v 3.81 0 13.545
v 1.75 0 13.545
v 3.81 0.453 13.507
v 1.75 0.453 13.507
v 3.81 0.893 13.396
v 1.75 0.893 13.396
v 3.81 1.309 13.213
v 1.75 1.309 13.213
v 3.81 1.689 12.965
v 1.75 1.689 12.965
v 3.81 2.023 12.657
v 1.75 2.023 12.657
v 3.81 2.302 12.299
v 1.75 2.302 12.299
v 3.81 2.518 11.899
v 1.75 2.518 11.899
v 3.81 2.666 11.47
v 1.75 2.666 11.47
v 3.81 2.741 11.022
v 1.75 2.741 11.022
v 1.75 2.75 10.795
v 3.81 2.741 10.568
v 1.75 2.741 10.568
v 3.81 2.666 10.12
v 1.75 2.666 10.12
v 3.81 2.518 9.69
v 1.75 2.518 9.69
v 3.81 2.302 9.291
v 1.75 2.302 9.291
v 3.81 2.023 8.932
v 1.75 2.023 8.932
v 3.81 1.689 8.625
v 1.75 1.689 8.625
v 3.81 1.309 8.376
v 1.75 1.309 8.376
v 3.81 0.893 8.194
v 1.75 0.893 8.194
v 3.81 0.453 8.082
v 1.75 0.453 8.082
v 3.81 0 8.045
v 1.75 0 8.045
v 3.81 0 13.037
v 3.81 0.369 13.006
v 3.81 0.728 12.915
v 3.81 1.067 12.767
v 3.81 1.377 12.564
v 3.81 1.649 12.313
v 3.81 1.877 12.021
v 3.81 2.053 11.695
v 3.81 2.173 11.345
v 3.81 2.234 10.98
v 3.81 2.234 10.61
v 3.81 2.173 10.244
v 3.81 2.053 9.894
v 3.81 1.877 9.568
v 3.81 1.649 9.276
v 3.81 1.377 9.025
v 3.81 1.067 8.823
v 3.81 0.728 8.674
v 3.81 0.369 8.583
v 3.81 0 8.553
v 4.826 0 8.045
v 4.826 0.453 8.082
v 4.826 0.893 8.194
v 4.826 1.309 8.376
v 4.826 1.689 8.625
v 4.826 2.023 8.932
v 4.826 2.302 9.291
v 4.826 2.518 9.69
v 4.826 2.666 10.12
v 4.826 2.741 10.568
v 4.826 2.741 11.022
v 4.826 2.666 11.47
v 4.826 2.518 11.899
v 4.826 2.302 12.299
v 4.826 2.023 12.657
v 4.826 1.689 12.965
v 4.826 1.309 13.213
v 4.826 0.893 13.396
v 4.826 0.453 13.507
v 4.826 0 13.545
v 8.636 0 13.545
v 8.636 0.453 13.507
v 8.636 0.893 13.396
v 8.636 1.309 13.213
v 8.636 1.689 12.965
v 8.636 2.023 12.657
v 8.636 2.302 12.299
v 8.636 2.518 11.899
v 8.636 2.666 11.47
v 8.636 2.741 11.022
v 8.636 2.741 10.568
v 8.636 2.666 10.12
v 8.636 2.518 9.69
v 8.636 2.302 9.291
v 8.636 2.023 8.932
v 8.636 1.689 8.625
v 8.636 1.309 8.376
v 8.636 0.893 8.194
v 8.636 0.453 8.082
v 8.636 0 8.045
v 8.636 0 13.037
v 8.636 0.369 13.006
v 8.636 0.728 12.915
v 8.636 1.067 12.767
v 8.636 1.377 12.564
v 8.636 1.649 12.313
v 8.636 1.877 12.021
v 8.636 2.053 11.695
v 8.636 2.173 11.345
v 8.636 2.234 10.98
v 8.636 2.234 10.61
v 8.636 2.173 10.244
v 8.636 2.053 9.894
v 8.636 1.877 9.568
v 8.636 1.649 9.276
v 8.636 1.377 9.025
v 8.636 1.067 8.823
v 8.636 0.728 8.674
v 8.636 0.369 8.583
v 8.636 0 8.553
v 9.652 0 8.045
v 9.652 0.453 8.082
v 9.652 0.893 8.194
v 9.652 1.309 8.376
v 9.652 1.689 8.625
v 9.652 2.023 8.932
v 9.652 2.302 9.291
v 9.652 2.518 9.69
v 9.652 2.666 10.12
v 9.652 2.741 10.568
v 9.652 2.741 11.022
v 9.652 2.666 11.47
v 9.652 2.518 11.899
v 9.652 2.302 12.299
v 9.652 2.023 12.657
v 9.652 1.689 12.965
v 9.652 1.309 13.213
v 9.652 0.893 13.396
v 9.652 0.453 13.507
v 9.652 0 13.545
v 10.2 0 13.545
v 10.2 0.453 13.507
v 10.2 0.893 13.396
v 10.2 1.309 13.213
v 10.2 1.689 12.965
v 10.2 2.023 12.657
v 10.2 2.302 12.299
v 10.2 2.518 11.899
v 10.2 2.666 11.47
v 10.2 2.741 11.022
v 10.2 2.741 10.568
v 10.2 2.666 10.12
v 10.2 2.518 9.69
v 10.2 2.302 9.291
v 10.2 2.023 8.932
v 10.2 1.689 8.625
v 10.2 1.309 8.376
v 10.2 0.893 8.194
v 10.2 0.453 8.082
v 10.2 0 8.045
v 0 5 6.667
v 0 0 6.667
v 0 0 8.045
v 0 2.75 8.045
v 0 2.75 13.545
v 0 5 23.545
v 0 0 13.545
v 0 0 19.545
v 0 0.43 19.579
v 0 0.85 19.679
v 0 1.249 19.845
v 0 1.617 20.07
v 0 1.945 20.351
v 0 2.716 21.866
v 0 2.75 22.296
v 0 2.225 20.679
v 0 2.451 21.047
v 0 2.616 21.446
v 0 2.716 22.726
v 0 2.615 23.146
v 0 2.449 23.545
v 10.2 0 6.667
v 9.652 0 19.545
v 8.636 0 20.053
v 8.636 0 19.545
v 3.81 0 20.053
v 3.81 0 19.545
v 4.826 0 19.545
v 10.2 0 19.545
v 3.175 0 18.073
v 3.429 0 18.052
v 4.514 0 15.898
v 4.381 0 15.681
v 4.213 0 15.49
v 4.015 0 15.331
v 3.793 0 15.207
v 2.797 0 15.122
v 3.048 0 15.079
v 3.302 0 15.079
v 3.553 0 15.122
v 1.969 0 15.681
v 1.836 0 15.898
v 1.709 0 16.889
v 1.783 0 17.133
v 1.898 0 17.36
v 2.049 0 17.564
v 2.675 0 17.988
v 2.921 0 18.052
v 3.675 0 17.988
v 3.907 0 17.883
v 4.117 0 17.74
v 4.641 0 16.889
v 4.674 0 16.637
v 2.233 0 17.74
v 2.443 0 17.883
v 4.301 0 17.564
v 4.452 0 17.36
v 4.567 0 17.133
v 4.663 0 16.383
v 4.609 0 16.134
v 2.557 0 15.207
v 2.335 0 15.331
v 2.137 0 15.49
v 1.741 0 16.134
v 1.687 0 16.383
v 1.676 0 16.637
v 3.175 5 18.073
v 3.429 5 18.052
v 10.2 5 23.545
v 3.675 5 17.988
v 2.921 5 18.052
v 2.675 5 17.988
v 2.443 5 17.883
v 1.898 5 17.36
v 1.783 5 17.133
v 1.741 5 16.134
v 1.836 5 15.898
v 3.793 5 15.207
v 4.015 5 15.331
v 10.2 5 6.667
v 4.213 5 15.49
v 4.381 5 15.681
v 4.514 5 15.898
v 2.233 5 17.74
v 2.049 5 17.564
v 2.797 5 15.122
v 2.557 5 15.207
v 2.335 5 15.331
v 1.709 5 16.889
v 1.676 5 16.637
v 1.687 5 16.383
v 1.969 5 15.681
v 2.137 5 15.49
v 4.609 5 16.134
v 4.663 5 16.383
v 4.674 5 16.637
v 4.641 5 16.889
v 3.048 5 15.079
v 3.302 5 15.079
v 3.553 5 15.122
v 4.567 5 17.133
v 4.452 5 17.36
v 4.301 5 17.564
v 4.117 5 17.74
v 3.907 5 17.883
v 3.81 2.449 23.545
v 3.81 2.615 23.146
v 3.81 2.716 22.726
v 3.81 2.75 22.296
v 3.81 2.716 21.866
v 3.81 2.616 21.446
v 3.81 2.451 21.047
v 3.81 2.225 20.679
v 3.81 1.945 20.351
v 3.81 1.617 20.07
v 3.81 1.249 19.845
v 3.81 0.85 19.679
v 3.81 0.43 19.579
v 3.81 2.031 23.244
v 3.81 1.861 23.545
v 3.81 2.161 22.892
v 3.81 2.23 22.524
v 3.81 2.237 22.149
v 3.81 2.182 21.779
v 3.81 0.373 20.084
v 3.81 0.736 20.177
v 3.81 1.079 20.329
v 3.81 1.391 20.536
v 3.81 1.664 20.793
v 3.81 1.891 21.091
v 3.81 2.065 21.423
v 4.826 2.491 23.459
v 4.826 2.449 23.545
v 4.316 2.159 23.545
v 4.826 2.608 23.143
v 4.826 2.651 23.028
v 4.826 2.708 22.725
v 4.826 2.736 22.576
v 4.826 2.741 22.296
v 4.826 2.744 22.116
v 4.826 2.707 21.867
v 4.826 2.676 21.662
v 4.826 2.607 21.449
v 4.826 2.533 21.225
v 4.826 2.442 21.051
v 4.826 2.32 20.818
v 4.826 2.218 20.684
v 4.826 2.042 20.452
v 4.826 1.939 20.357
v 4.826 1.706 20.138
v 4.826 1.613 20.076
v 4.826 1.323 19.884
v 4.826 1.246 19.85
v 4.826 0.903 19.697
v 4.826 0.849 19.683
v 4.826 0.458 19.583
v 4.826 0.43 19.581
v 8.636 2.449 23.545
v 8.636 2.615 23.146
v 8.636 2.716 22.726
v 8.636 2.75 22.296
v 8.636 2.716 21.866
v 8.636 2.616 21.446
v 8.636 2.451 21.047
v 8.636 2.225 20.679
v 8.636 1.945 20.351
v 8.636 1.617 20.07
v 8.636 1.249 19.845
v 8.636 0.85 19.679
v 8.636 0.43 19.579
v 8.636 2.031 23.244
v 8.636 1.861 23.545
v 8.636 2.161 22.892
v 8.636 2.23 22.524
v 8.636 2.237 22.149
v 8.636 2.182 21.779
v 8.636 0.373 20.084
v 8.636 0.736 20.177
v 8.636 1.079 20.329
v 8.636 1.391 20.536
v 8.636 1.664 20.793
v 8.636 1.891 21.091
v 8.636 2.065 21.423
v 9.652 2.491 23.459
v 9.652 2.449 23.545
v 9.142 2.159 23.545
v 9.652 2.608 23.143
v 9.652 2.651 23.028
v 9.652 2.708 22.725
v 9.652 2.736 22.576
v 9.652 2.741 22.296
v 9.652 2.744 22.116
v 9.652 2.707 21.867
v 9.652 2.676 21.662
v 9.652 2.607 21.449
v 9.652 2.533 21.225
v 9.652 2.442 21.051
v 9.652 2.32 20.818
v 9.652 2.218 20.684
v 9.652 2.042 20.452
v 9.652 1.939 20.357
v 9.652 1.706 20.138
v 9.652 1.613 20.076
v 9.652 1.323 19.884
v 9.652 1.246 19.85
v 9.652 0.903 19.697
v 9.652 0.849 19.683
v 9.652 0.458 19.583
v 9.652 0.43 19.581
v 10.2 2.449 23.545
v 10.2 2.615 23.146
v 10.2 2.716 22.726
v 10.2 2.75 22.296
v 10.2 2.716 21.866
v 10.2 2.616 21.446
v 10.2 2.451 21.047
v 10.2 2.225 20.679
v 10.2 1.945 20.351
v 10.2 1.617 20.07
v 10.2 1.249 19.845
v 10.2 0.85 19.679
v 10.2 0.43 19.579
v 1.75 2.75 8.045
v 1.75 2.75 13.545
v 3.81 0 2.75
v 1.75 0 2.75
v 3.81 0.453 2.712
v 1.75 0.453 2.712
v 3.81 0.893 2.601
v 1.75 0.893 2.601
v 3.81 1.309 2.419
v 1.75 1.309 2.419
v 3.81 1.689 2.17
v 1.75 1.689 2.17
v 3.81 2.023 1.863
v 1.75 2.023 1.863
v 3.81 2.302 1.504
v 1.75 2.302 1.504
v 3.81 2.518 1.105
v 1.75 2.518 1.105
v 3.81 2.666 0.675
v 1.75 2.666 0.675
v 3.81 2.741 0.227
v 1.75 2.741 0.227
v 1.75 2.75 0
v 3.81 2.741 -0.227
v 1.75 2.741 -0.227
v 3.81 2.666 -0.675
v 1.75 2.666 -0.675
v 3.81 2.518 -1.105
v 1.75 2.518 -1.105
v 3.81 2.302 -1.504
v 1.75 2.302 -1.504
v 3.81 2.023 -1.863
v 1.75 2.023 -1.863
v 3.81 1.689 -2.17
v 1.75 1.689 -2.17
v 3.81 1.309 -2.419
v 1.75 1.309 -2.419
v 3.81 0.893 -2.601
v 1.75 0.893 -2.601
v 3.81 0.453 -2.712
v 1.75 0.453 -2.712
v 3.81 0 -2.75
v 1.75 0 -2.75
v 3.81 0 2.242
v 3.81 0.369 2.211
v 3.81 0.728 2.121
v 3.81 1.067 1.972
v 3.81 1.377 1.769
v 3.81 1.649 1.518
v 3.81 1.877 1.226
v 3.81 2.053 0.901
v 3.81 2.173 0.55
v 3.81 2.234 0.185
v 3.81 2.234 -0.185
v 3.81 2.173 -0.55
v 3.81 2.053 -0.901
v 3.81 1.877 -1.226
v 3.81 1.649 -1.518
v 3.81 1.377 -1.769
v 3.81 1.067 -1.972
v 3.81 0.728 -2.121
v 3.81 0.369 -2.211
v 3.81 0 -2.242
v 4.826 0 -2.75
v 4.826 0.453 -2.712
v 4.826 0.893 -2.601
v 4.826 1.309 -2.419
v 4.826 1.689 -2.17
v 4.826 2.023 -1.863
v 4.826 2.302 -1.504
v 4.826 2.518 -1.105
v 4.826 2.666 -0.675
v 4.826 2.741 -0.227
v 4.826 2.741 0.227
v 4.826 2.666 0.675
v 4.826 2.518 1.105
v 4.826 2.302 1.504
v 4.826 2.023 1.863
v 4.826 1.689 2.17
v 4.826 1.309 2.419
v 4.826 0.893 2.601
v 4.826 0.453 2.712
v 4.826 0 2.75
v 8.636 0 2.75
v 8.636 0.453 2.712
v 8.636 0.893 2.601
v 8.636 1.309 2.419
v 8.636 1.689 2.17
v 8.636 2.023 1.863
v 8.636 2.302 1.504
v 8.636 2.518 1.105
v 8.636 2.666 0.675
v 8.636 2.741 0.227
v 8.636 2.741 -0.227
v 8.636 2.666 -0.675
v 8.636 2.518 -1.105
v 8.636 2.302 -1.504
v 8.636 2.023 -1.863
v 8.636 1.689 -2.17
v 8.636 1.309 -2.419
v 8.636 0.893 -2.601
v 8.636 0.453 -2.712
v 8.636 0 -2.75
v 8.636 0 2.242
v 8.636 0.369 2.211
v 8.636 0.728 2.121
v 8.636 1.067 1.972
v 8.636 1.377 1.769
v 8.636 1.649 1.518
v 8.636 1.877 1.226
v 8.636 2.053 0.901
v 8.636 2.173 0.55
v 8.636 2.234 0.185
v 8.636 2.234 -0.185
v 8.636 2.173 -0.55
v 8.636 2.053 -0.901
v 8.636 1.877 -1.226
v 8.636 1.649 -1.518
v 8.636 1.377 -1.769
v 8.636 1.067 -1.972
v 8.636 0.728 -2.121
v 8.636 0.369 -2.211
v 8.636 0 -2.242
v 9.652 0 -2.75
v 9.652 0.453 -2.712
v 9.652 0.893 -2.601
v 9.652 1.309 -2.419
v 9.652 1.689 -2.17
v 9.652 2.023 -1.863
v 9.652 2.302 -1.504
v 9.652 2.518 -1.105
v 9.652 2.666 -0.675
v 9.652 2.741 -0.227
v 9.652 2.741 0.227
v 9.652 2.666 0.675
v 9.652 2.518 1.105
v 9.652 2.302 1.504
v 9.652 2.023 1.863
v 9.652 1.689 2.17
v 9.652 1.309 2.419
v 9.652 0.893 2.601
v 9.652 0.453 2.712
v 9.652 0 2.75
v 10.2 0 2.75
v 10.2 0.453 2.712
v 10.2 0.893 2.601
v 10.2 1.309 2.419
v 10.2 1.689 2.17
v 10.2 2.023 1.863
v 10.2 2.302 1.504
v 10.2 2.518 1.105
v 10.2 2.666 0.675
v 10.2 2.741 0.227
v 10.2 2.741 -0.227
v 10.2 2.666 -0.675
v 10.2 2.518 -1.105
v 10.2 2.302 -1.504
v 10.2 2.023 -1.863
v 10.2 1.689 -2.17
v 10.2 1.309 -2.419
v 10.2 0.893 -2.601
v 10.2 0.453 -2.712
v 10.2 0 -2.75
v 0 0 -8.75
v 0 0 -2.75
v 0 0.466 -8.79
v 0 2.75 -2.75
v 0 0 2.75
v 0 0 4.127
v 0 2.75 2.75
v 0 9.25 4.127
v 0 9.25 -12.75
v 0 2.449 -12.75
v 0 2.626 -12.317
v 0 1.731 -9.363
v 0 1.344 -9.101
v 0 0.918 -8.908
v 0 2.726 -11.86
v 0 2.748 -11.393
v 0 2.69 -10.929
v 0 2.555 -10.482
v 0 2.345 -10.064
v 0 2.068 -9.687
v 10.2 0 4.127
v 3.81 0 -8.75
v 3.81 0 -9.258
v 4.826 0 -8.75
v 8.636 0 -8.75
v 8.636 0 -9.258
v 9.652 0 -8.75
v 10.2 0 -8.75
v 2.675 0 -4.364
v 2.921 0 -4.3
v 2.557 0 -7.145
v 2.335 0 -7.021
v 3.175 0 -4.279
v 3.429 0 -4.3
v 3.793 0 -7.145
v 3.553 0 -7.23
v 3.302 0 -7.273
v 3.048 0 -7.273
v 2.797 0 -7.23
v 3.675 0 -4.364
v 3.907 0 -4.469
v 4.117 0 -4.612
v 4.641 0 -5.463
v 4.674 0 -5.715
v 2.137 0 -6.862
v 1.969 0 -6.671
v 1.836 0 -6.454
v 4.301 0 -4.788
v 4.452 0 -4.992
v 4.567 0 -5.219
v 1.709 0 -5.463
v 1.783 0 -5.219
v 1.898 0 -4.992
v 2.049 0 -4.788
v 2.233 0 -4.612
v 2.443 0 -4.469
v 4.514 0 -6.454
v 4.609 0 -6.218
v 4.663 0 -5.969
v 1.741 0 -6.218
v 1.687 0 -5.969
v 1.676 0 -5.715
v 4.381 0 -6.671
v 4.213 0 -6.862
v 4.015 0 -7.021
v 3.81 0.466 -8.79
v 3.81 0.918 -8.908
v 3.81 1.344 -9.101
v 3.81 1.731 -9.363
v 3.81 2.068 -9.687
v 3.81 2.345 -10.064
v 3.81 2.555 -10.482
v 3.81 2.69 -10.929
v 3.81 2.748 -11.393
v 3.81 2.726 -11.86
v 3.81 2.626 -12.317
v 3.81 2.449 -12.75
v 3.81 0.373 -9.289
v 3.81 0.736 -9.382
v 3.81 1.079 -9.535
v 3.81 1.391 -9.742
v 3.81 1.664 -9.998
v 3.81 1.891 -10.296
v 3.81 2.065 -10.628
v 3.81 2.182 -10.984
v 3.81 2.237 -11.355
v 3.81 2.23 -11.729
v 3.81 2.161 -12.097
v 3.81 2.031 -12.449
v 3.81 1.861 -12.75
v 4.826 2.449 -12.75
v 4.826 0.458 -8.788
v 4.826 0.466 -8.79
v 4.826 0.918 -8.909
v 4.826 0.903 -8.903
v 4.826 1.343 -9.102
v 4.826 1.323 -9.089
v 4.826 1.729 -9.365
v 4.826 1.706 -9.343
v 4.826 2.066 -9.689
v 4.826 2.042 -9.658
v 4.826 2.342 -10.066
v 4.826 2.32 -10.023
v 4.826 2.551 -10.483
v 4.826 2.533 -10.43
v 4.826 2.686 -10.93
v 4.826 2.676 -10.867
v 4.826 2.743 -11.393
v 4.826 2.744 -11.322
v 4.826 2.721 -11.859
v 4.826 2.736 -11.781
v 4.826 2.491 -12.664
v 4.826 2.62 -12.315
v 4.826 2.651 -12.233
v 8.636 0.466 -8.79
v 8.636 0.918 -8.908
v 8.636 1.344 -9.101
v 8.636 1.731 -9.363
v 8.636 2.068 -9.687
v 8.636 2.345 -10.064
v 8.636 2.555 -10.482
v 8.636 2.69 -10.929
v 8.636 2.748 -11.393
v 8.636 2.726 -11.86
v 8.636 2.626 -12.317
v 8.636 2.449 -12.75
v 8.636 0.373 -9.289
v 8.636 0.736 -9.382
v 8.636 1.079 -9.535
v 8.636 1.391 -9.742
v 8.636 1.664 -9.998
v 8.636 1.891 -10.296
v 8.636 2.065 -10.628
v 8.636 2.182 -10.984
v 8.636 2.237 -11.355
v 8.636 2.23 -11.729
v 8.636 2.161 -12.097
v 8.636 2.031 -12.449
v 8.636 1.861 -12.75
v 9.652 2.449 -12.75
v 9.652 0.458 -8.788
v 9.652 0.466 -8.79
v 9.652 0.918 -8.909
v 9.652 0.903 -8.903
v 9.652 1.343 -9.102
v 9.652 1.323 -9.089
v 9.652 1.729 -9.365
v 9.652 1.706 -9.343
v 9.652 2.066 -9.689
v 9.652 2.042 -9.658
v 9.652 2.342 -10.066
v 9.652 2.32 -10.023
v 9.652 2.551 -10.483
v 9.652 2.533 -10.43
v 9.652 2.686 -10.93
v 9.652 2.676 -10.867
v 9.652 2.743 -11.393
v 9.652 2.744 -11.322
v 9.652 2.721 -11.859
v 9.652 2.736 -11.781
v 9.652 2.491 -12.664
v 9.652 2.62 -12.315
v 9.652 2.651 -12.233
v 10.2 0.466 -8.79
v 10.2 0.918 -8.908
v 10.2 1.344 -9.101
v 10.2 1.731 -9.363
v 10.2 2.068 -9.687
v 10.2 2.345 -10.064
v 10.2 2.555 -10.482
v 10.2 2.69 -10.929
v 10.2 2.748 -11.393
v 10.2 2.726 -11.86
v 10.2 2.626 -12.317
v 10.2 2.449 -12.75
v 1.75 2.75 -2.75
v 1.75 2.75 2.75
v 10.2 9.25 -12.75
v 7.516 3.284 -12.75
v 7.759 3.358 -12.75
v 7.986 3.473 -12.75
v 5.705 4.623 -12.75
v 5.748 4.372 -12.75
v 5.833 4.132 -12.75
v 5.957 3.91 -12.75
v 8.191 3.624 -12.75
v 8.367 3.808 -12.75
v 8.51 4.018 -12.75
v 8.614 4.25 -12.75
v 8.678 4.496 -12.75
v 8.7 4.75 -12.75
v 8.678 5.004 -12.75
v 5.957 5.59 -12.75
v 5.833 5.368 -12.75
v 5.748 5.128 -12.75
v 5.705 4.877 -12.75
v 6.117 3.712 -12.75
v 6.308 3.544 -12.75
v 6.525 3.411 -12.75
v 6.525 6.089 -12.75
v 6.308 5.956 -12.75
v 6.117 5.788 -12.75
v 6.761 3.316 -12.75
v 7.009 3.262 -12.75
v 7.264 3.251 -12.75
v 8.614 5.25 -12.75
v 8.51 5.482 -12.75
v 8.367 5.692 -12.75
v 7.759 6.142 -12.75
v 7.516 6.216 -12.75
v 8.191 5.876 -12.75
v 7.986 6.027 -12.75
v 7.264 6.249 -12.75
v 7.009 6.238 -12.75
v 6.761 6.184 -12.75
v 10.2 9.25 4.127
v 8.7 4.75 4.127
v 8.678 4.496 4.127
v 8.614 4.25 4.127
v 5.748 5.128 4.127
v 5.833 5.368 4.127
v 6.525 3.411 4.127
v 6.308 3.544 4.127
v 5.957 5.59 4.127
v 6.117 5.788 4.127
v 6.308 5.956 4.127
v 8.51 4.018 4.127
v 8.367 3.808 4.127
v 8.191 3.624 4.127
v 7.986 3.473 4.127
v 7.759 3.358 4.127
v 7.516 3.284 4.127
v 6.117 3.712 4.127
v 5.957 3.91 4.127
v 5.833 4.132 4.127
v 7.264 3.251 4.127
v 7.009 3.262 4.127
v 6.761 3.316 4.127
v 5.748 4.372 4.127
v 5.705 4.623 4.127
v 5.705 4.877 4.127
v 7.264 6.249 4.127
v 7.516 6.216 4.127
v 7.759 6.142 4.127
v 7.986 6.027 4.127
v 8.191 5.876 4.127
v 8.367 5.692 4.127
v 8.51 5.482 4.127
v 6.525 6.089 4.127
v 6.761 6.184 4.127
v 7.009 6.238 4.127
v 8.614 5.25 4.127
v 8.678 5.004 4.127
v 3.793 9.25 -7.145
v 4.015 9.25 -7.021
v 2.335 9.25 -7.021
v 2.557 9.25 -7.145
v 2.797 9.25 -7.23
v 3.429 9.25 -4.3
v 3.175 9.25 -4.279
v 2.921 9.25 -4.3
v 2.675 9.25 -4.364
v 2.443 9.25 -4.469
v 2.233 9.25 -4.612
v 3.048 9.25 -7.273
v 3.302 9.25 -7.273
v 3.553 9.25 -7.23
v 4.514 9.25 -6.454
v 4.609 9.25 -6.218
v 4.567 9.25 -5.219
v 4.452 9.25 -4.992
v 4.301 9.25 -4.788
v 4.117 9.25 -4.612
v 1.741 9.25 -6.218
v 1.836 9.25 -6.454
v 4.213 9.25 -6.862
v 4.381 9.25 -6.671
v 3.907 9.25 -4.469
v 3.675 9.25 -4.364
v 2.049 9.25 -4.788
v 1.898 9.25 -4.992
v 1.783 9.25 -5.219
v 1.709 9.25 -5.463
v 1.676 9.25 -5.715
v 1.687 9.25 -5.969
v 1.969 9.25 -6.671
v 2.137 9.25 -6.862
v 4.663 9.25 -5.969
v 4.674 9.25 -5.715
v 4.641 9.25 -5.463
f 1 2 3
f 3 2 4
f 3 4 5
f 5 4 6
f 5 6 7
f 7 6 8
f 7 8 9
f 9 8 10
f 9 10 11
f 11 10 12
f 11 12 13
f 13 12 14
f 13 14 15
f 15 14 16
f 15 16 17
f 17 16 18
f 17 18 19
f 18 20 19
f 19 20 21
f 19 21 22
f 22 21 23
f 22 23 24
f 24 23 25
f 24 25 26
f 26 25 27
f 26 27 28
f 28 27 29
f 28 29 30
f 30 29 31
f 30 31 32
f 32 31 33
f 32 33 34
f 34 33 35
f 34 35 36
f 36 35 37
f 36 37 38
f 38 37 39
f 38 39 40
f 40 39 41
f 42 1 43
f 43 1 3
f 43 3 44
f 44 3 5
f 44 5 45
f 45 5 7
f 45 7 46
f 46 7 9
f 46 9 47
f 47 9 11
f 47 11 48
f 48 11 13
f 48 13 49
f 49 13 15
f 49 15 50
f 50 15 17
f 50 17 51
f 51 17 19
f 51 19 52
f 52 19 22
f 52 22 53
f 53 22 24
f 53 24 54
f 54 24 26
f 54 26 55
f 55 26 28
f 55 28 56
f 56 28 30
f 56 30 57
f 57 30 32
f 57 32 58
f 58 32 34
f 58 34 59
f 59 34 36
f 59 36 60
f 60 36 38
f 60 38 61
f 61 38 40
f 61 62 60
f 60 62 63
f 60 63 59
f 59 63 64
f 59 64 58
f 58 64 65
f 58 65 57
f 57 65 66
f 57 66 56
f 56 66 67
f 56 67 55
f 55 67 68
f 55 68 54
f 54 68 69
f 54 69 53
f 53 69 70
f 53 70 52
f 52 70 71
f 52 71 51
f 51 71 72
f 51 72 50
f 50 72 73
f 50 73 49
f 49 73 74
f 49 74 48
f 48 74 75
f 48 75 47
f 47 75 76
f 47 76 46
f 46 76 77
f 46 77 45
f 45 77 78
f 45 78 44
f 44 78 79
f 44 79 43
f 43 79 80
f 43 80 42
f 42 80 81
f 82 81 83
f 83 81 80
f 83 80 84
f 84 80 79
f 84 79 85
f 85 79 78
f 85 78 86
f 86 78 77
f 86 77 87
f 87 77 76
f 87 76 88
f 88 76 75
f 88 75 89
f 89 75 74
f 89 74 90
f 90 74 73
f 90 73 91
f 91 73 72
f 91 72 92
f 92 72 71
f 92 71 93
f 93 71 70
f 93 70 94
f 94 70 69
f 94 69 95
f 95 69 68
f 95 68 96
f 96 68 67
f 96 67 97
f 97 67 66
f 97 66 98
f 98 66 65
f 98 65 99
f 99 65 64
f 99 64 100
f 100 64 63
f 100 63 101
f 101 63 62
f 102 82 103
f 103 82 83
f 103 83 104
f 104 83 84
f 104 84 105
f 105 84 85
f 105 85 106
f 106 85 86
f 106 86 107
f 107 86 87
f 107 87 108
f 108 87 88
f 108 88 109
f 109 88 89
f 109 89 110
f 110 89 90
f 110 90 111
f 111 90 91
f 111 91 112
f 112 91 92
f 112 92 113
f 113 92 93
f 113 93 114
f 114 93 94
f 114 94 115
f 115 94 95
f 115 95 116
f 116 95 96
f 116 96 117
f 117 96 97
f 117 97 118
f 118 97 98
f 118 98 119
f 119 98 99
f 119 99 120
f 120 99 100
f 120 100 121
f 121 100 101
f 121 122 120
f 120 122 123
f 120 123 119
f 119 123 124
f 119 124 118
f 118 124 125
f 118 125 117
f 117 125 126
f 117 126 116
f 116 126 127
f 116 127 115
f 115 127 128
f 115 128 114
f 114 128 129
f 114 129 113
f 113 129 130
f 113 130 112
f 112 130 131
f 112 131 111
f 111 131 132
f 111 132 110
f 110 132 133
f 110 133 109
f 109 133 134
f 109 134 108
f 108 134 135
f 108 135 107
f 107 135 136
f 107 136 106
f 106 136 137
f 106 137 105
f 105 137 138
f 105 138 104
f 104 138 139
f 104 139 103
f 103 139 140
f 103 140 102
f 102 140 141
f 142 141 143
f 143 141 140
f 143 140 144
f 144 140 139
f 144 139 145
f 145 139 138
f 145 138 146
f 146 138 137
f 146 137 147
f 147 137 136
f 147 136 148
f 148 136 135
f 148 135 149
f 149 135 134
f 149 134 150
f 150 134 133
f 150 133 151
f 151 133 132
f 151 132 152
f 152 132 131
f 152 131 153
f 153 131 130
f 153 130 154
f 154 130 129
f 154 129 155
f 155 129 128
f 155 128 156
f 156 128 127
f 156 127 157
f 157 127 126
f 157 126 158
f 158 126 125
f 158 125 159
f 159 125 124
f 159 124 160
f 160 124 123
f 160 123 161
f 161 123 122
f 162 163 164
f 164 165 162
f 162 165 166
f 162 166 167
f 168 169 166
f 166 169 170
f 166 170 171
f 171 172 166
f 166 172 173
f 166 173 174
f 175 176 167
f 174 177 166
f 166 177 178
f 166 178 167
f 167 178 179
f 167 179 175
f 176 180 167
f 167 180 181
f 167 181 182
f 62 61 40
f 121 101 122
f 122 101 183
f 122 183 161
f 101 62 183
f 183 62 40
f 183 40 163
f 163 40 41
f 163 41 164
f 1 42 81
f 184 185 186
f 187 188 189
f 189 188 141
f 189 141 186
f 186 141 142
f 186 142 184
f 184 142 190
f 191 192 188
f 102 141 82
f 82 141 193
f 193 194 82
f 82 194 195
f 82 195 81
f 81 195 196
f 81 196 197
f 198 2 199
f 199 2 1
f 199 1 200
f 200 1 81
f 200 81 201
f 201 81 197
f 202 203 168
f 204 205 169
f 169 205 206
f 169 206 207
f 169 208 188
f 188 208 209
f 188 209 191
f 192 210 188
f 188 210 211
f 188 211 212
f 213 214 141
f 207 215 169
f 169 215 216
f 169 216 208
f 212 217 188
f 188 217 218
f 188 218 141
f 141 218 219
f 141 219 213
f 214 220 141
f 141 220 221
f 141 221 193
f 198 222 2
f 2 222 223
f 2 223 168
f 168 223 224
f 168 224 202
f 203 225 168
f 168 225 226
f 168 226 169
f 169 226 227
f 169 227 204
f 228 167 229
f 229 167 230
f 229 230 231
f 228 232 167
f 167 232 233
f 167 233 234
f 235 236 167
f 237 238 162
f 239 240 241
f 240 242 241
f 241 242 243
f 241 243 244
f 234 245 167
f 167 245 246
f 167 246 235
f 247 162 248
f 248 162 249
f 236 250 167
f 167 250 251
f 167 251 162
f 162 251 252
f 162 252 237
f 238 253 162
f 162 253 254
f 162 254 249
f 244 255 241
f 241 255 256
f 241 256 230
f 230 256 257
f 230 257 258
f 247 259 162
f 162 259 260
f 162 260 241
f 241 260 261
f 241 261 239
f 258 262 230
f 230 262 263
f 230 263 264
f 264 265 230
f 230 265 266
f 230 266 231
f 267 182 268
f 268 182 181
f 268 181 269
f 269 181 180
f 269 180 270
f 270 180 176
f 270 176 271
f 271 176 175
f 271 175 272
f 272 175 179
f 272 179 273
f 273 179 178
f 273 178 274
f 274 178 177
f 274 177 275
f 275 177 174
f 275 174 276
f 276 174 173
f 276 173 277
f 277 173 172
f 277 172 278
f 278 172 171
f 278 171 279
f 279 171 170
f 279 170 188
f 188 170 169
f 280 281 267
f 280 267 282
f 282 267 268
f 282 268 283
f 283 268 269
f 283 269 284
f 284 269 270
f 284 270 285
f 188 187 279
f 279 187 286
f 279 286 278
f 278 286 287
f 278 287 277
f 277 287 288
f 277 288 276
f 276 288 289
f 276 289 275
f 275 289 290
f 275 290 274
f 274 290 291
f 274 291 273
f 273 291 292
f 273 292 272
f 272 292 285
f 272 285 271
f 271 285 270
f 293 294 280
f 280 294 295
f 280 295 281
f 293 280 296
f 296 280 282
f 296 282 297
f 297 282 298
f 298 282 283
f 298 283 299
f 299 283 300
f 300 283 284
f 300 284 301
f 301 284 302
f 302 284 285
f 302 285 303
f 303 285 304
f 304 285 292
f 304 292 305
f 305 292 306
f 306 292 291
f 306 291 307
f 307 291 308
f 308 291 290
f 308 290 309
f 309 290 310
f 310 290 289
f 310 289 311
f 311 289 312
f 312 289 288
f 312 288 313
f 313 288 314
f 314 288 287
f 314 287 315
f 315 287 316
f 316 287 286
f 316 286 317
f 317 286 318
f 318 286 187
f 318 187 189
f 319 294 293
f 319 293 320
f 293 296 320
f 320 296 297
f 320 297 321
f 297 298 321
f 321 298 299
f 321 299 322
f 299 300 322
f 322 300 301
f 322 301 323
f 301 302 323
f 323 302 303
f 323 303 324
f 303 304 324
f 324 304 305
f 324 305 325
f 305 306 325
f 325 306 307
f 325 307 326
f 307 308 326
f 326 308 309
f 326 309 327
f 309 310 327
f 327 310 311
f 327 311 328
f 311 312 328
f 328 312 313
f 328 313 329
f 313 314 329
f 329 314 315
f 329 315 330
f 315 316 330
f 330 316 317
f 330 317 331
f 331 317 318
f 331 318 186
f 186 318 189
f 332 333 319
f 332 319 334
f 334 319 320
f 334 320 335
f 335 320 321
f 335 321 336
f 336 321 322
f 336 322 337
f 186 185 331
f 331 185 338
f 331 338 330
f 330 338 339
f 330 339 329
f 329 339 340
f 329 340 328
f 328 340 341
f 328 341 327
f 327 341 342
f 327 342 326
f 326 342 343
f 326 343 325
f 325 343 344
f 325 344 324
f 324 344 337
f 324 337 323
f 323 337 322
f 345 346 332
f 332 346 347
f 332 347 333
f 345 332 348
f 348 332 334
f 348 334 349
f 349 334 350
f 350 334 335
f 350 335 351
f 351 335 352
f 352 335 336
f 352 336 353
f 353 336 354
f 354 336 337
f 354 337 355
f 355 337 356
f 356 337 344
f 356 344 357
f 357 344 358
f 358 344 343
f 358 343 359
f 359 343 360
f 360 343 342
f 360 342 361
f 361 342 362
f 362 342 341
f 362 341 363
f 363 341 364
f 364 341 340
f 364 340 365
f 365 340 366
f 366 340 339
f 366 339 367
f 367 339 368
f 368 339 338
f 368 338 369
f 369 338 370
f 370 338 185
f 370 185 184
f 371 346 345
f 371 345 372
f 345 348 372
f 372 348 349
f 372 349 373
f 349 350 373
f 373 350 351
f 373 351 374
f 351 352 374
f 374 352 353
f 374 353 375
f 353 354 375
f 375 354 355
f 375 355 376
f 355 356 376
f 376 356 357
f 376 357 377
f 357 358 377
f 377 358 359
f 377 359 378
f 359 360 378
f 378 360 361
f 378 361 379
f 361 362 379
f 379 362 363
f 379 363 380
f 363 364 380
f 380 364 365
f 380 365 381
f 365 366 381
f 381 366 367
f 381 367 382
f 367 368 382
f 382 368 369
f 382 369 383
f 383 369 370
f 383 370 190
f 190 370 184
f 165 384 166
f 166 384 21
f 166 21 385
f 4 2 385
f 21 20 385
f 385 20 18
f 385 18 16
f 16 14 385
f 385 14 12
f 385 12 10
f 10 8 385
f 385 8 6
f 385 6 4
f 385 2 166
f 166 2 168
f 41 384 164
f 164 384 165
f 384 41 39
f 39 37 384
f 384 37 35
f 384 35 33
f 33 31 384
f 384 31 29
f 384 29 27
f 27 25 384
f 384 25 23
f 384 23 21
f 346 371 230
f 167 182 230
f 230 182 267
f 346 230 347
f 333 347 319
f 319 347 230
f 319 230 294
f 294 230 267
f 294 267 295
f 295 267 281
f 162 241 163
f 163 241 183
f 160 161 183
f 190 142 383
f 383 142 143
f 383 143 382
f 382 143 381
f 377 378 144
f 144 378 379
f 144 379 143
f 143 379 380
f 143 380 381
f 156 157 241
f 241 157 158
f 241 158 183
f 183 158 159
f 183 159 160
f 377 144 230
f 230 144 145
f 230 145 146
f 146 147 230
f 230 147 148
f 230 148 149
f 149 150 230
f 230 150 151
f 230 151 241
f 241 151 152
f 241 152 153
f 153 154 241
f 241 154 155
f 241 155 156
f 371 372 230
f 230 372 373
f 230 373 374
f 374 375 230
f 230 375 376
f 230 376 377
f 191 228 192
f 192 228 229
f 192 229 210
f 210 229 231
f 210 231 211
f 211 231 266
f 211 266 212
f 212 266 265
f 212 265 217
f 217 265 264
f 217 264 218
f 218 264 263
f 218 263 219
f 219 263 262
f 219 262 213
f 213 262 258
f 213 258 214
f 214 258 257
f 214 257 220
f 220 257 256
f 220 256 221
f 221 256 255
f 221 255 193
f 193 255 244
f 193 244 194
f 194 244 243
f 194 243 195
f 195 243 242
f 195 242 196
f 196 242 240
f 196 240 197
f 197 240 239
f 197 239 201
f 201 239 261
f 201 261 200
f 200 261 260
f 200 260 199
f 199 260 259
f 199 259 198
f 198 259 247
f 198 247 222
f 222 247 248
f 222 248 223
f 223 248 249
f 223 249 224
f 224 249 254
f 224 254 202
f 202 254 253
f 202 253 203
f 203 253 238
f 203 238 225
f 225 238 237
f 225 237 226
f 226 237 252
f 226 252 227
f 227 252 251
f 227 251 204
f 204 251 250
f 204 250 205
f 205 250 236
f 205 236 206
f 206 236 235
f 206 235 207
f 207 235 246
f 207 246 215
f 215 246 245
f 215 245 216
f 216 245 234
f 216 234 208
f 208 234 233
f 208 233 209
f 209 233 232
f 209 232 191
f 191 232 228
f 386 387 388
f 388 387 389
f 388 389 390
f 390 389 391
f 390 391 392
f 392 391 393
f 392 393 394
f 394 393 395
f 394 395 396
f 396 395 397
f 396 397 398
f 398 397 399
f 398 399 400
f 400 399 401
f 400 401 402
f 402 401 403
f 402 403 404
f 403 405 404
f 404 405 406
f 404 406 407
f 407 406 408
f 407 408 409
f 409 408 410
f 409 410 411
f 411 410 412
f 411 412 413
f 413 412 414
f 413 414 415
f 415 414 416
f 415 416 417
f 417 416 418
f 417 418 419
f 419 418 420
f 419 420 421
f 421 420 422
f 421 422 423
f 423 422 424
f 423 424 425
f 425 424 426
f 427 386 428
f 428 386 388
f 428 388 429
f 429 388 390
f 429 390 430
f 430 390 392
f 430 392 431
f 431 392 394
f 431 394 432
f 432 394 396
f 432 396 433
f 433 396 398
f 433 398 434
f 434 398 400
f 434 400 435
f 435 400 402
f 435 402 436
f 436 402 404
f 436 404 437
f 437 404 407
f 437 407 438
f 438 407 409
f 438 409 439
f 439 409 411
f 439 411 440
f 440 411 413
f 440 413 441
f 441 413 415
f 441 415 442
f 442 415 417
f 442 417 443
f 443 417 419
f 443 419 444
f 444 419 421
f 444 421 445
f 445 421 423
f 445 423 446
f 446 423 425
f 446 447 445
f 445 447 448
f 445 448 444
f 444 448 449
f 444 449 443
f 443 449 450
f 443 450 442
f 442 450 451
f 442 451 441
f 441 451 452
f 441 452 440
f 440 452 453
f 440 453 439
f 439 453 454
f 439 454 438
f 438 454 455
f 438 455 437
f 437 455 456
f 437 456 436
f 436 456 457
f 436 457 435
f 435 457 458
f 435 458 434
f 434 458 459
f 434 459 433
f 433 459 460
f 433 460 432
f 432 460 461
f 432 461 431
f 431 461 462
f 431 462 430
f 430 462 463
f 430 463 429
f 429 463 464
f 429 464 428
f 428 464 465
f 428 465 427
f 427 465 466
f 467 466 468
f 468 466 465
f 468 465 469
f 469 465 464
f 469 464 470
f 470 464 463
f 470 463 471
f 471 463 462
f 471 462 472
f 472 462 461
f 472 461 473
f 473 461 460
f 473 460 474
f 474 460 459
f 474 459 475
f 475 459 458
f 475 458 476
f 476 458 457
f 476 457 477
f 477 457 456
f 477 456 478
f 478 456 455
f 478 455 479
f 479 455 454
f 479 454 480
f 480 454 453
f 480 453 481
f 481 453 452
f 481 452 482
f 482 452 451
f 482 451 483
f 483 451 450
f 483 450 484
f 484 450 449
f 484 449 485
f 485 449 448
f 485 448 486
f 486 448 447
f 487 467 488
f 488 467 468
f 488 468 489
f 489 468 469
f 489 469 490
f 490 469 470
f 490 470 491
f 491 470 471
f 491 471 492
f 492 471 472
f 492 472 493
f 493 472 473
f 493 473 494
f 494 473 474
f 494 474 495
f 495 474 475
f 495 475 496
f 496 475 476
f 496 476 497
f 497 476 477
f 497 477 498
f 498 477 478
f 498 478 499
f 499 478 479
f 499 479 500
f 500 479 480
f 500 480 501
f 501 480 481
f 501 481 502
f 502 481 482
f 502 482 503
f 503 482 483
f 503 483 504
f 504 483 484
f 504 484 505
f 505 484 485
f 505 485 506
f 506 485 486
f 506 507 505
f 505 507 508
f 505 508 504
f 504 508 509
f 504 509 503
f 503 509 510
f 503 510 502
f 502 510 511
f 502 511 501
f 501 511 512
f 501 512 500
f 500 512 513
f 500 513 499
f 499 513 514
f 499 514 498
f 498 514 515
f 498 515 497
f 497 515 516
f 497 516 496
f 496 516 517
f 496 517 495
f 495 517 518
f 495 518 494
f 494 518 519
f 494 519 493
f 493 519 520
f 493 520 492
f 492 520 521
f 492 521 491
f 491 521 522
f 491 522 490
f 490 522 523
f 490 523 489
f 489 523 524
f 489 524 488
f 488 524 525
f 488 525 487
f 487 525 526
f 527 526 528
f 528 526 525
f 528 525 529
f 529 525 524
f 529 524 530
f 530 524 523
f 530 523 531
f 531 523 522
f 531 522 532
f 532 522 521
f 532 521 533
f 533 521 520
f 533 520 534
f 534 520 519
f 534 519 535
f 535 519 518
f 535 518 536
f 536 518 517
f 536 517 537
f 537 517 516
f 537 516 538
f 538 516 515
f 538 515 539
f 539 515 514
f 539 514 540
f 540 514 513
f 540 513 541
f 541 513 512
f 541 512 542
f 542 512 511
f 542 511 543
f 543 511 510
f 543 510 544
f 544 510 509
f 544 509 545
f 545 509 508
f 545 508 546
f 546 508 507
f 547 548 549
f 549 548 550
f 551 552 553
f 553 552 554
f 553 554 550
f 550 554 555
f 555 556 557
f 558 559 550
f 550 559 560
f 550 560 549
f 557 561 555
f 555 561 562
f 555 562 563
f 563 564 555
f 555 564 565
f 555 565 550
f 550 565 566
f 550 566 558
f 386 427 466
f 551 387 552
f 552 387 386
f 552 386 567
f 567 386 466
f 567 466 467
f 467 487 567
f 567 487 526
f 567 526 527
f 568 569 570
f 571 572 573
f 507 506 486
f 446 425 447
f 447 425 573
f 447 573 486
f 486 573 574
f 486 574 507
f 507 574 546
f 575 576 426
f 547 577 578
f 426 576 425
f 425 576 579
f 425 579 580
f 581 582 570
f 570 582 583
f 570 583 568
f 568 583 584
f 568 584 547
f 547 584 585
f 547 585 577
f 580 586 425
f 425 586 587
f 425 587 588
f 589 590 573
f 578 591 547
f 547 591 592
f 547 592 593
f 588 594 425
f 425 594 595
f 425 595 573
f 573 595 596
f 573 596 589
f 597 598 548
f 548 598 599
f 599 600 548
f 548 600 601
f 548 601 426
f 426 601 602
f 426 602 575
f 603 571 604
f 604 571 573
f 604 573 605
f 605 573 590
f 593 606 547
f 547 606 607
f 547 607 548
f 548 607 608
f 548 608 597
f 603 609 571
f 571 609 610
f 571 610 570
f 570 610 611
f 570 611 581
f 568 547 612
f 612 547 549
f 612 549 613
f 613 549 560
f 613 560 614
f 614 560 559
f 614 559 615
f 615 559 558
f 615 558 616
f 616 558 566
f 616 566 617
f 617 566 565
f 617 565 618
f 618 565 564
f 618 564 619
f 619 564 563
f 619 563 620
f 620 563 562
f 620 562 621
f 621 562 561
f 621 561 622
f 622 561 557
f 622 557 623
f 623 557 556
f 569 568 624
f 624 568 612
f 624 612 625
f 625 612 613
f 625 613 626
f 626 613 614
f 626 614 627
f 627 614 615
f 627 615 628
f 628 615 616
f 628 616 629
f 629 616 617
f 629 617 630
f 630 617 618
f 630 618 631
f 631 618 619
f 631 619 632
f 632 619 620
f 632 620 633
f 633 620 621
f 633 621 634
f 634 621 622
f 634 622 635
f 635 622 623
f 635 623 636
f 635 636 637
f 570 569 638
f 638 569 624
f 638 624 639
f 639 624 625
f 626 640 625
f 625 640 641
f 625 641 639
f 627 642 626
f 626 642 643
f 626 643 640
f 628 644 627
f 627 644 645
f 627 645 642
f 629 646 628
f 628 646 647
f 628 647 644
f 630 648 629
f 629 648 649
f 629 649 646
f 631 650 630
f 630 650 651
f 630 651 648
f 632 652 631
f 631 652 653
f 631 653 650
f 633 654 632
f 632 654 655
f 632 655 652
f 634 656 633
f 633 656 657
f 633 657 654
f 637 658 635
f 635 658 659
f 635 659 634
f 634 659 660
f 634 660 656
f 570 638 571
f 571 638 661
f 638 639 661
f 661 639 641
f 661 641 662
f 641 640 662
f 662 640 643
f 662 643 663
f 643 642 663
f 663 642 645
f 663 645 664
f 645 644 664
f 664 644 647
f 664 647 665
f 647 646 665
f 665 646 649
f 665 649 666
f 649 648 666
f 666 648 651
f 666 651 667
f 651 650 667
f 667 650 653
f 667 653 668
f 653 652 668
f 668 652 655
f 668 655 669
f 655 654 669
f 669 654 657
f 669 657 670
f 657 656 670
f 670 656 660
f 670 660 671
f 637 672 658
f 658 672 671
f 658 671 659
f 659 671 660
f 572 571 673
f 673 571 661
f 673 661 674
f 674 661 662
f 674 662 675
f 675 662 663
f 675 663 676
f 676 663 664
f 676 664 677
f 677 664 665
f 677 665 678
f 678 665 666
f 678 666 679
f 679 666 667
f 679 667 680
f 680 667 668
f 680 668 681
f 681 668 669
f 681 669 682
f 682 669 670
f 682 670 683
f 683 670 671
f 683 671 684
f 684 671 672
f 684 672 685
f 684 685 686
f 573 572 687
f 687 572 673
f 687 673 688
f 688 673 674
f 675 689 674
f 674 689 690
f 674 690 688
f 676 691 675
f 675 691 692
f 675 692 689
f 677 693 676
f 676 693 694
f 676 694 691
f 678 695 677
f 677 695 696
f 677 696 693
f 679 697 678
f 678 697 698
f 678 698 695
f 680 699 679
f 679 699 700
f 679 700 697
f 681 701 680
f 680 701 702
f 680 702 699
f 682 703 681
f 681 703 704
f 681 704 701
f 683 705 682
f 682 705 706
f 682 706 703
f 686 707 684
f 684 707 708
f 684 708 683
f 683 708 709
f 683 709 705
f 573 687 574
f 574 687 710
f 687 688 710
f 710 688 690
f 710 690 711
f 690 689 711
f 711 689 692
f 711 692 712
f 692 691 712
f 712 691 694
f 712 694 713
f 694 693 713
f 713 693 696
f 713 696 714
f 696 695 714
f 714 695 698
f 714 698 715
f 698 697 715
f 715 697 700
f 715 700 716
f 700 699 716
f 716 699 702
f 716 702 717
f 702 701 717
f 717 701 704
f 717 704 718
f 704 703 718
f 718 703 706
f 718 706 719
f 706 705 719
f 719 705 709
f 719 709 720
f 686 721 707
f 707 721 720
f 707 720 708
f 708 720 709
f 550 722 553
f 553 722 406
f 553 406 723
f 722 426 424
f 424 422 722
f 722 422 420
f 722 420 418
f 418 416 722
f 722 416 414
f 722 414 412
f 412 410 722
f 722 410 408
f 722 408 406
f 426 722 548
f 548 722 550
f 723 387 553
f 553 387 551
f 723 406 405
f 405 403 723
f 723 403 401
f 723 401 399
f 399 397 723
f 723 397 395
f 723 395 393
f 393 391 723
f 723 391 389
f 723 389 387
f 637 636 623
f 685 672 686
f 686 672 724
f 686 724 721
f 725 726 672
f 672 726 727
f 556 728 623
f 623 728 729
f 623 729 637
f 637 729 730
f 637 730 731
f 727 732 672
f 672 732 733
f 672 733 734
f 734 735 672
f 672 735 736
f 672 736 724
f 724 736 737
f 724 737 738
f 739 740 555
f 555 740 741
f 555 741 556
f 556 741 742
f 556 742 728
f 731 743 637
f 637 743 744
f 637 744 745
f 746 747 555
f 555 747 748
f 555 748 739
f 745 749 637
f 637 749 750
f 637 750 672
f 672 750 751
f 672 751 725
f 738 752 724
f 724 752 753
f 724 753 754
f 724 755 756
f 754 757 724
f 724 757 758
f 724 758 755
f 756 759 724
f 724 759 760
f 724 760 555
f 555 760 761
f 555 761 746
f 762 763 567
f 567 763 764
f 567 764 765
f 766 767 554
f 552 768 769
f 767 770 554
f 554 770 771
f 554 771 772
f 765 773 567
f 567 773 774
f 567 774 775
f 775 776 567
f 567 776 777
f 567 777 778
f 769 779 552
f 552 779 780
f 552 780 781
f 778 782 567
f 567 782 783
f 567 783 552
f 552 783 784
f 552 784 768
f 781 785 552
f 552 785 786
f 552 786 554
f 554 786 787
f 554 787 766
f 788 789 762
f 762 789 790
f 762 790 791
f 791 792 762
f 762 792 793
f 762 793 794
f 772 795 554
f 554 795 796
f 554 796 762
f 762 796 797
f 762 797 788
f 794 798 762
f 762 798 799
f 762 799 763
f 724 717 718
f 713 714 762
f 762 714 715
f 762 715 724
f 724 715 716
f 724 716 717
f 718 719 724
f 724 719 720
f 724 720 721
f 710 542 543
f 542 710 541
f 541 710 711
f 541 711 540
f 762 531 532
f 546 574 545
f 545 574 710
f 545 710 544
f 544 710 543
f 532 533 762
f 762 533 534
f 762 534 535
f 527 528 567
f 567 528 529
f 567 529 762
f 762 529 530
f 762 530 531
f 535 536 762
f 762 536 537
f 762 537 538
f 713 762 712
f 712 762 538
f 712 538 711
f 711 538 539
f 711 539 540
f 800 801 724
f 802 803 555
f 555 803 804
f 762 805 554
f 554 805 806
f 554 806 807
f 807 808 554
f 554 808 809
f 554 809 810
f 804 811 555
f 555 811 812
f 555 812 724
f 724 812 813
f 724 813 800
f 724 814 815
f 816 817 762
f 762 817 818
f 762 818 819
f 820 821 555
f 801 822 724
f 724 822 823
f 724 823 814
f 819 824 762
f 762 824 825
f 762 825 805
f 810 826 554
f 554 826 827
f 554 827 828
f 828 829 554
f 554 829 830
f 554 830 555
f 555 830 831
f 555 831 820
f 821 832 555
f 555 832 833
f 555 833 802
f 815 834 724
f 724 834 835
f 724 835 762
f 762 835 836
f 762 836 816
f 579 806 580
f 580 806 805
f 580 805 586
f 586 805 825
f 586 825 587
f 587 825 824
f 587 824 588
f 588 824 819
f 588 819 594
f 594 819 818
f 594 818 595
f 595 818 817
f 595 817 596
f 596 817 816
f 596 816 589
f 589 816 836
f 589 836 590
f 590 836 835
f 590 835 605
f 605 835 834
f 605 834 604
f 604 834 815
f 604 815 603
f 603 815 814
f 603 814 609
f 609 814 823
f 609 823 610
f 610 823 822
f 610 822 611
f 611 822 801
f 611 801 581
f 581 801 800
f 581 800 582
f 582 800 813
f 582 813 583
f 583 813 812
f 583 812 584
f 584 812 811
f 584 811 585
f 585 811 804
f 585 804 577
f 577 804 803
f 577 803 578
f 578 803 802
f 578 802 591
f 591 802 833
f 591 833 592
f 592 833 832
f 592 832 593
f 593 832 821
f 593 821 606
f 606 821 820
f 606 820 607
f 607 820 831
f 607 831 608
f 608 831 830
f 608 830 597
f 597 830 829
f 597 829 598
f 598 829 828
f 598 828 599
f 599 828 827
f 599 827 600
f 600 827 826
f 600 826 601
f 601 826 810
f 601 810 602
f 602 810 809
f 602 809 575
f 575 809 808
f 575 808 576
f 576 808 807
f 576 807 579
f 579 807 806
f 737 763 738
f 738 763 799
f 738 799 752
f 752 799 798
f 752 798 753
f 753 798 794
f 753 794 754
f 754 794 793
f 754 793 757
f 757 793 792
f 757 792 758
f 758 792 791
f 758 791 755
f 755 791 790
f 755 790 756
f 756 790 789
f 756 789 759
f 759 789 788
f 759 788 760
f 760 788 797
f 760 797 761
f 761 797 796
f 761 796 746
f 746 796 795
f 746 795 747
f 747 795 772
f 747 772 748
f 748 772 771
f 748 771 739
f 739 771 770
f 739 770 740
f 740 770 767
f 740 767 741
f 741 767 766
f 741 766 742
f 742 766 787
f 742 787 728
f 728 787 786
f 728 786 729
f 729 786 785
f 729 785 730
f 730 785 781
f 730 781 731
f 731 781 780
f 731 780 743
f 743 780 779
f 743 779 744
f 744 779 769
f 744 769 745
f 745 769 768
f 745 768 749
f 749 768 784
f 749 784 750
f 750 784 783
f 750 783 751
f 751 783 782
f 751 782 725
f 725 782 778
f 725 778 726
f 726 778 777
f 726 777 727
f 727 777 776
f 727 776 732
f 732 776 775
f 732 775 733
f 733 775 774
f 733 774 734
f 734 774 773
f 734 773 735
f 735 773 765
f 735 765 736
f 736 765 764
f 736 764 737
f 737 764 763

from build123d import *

# Parameters (mm, degrees)
REVOLVE1_ANGLE           = 180
BOSS_EXTRUDE1_DEPTH      = 9.25
BOSS_EXTRUDE1_DEPTH_BACK = 9.25
BOSS_EXTRUDE2_START      = 3.5
BOSS_EXTRUDE2_DEPTH      = 5.75
BOSS_EXTRUDE3_START      = -3.5
BOSS_EXTRUDE3_DEPTH      = 5.75
SKETCH14_W               = 2.5
SKETCH14_H               = 5
CUT_EXTRUDE10_DEPTH      = 17.487950145
SKETCH13_W               = 5.5
SKETCH13_H               = 2.75
CUT_EXTRUDE9_DEPTH       = 1.75
SKETCH15_W               = 12.7
SKETCH15_H               = 8
CUT_EXTRUDE11_DEPTH      = 25.836515456
SKETCH16_W               = 5.122625222
SKETCH16_H               = 5
CUT_EXTRUDE12_DEPTH      = 19.677593528
SKETCH22_W               = 2.5
SKETCH22_H               = 5
CUT_EXTRUDE17_DEPTH      = 22.705662381
SKETCH17_W               = 10.2
SKETCH17_H               = 16.877374778
BOSS_EXTRUDE4_DEPTH      = 4.25
SKETCH18_R               = 1.5
CUT_EXTRUDE13_DEPTH      = 28.275588567
SKETCH19_R               = 1.5
CUT_EXTRUDE14_DEPTH      = 27.141829157
SKETCH20_R               = 1.5
CUT_EXTRUDE16_DEPTH      = 24.804137104


with BuildPart() as part:
    # Sketch6 → Revolve1 (revolve)
    with BuildSketch(Plane(origin=(0, 0, 0), x_dir=(1, 0, 0), z_dir=(0, 1, 0))):
        Polygon((0, 5), (0, 2.75), (3.81, 2.75), (3.81, 2.242), (4.826, 2.75), (8.636, 2.75), (8.636, 2.242), (9.652, 2.75), (12.7, 2.75), (12.7, 5), align=None)
    revolve(axis=Axis((0, 0, 0), (1, 0, 0)), revolution_arc=REVOLVE1_ANGLE)

    # Sketch9 → Boss-Extrude1 (add, two sides: drawn at the far end of the back side and taken through both)
    with BuildSketch(Plane.XY.offset(-BOSS_EXTRUDE1_DEPTH_BACK)):
        Polygon((0, 5), (0, 3.25), (12.7, 2.75), (12.7, 5), align=None)
    extrude(amount=BOSS_EXTRUDE1_DEPTH + BOSS_EXTRUDE1_DEPTH_BACK)

    # Sketch9<3> → Boss-Extrude2 (add)
    with BuildSketch(Plane.XY.offset(BOSS_EXTRUDE2_START)):
        Polygon((0, 3.25), (0, 0), (12.7, 0), (12.7, 2.75), align=None)
    extrude(amount=BOSS_EXTRUDE2_DEPTH)

    # Sketch9<4> → Boss-Extrude3 (add)
    with BuildSketch(Plane.XY.offset(BOSS_EXTRUDE3_START)):
        Polygon((0, 3.25), (0, 0), (12.7, 0), (12.7, 2.75), align=None)
    extrude(amount=-BOSS_EXTRUDE3_DEPTH)

    # Sketch14 → Cut-Extrude10 (cut, through all)
    with BuildSketch(Plane.ZY):
        with Locations((-8, 2.5)):
            Rectangle(SKETCH14_W, SKETCH14_H)
    extrude(amount=-CUT_EXTRUDE10_DEPTH, mode=Mode.SUBTRACT)

    # Mirror4: part across plane


with BuildPart() as part_1:
    add(part.part)
    add(part.part.mirror(Plane.XY.offset(-5.75)))

    # Sketch13 → Cut-Extrude9 (cut)
    with BuildSketch(Plane.ZY):
        with Locations((0, 1.375)):
            Rectangle(SKETCH13_W, SKETCH13_H)
    extrude(amount=-CUT_EXTRUDE9_DEPTH, mode=Mode.SUBTRACT)

    # Sketch15 → Cut-Extrude11 (cut, through all)
    with BuildSketch(Plane(origin=(0, 5, 0), x_dir=(1, 0, 0), z_dir=(0, 1, 0))):
        with Locations((6.35, 16.75)):
            Rectangle(SKETCH15_W, SKETCH15_H)
    extrude(amount=-CUT_EXTRUDE11_DEPTH, mode=Mode.SUBTRACT)

    # Sketch16 → Cut-Extrude12 (cut, through all)
    with BuildSketch(Plane.ZY):
        with Locations((6.688687389, 2.5)):
            Rectangle(SKETCH16_W, SKETCH16_H)
    extrude(amount=-CUT_EXTRUDE12_DEPTH, mode=Mode.SUBTRACT)

    # Sketch22 → Cut-Extrude17 (cut, through all)
    with BuildSketch(Plane.XY.offset(4.127374778)):
        with Locations((11.45, 2.5)):
            Rectangle(SKETCH22_W, SKETCH22_H)
    extrude(amount=-CUT_EXTRUDE17_DEPTH, mode=Mode.SUBTRACT)


with BuildPart() as body_2:
    # Mirror8: mirrored copy
    add(part_1.part.mirror(Plane.XY.offset(5.397374778)))

    # Sketch19 → Cut-Extrude14 (cut, through all)
    with BuildSketch(Plane(origin=(0, 5, 0), x_dir=(1, 0, 0), z_dir=(0, 1, 0))):
        with Locations((3.175, -16.573374778)):
            Circle(SKETCH19_R)
    extrude(amount=-CUT_EXTRUDE14_DEPTH, mode=Mode.SUBTRACT)


with BuildPart() as part_2:
    add(part_1.part)

    # Sketch17 → Boss-Extrude4 (add)
    with BuildSketch(Plane(origin=(0, 5, 0), x_dir=(1, 0, 0), z_dir=(0, 1, 0))):
        with Locations((5.1, 4.311312611)):
            Rectangle(SKETCH17_W, SKETCH17_H)
    extrude(amount=BOSS_EXTRUDE4_DEPTH)

    # Sketch18 → Cut-Extrude13 (cut, through all)
    with BuildSketch(Plane(origin=(0, 9.25, 0), x_dir=(1, 0, 0), z_dir=(0, 1, 0))):
        with Locations((3.175, 5.778625222)):
            Circle(SKETCH18_R)
    extrude(amount=-CUT_EXTRUDE13_DEPTH, mode=Mode.SUBTRACT)

    # Sketch20 → Cut-Extrude16 (cut, through all)
    with BuildSketch(Plane.XY.offset(4.127374778)):
        with Locations((7.2, 4.75)):
            Circle(SKETCH20_R)
    extrude(amount=-CUT_EXTRUDE16_DEPTH, mode=Mode.SUBTRACT)


solid = Compound([body_2.part, part_2.part])
